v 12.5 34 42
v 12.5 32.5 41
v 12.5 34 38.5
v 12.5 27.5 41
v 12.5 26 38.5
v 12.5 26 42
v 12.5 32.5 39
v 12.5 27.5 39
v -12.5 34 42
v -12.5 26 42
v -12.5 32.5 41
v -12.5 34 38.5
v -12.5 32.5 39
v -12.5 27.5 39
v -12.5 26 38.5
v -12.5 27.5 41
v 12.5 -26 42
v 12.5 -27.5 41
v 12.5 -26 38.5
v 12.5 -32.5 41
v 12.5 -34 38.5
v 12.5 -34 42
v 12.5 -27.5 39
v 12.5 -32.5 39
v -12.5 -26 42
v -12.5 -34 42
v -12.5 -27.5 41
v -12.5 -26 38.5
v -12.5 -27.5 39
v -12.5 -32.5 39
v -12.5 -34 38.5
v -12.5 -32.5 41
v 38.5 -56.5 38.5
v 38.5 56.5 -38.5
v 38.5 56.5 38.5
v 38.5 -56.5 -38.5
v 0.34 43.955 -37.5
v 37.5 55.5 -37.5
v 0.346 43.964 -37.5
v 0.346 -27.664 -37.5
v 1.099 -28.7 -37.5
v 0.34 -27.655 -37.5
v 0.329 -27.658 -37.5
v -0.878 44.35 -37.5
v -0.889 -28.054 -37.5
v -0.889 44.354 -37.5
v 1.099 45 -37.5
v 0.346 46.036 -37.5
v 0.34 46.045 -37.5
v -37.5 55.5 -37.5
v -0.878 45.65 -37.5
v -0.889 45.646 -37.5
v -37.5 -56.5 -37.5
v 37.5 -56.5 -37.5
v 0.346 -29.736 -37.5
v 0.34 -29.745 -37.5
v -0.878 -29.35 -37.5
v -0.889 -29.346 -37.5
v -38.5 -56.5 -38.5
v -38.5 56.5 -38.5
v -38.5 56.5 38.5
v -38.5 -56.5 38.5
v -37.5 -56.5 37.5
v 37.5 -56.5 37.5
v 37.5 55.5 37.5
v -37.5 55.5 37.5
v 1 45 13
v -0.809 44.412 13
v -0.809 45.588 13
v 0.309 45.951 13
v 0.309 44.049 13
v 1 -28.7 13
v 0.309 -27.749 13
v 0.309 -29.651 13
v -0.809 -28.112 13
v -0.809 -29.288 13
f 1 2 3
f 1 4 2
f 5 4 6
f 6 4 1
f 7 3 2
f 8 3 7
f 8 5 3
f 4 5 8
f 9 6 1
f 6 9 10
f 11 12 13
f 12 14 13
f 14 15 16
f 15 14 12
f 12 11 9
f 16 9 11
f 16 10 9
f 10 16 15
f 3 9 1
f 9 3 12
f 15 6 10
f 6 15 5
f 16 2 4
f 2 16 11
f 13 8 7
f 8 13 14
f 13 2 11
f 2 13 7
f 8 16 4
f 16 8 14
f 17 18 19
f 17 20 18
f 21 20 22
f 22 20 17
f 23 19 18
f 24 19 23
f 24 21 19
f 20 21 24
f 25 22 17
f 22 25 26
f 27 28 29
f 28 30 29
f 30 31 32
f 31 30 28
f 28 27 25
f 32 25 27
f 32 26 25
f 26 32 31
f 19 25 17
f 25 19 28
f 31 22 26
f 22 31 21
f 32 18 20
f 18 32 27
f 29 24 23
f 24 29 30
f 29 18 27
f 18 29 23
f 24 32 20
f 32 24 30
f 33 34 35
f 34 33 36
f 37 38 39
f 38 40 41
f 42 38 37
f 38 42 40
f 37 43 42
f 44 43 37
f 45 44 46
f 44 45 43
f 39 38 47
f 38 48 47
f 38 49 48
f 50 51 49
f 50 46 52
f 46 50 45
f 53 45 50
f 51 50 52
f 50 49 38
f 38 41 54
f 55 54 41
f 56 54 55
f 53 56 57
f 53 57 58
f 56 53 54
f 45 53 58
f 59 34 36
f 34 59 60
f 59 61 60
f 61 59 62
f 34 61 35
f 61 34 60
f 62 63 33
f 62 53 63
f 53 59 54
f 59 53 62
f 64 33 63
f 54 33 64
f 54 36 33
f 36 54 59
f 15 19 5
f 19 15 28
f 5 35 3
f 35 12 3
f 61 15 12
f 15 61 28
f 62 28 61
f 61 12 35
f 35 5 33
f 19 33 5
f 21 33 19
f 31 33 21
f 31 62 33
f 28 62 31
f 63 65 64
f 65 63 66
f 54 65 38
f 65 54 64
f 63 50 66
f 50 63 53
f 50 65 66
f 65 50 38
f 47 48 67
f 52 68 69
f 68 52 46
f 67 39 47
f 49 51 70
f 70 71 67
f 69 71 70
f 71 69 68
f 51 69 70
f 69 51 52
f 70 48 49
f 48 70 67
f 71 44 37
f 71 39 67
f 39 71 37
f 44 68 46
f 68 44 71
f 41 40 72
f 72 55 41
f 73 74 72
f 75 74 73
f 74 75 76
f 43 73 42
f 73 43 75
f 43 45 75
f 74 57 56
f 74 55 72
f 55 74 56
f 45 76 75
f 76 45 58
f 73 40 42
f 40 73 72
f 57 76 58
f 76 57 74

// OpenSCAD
//AmaFi Weatherproofing Case

//Set variables (mm):
//Case
h = 113; //height
l = 77; //length
w = 76; //width
t = 1; //thickness
ht = (0.5*h); //h translation
lt = (0.5*l); //l translation
wt = (0.5*w); //w translation
//Pegs
ch = 51; //cylinder height
cr = 1.1; //cylinder radius
tcyt = 45 ; //top peg y trans 
bcyt = tcyt - 73.7; //bottom peg y translation
//Supports and zip tie slots
bh =25; // polygon height
b1l = 8; //polygon length
b1w = 4; //polygon width
b2l = 5; //cutout length
b2w = 2; //cutout width
bxt = 0; //x translation
byt = 30; //y translation
bzt = 40; //z translation

//Create Case:
//front side 
translate([0,0,-wt])
   cube([l,h,t], center = true);
//back side
translate([0,0,wt])
   cube([l,h,t], center = true);
//left side
translate([wt,0,0])
   cube([t,h,w], center = true);
//right side
translate([-wt,0,0])
   cube([t,h,w], center = true);   
//top side
translate([0,ht-0.5,0])
   cube([l,t,w], center = true);
   
//Create mounting pegs:
//top peg
translate([0,tcyt,-wt])
    cylinder(ch,cr);
//bottom peg
translate([0,bcyt,-wt])
    cylinder(ch,cr);

//Create supports
difference()  {    
translate([bxt,byt,bzt])
   cube([bh,b1l,b1w], center = true); //top slot
translate ([bxt,byt,bzt]) 
   cube([bh,b2l,b2w], center = true); //remove cutout  
    }   
difference()  {    
translate([bxt,-byt,bzt])
   cube([bh,b1l,b1w], center = true); //bottom slot
translate ([bxt,-byt,bzt]) 
   cube([bh,b2l,b2w], center = true); //remove cutout   
    }
